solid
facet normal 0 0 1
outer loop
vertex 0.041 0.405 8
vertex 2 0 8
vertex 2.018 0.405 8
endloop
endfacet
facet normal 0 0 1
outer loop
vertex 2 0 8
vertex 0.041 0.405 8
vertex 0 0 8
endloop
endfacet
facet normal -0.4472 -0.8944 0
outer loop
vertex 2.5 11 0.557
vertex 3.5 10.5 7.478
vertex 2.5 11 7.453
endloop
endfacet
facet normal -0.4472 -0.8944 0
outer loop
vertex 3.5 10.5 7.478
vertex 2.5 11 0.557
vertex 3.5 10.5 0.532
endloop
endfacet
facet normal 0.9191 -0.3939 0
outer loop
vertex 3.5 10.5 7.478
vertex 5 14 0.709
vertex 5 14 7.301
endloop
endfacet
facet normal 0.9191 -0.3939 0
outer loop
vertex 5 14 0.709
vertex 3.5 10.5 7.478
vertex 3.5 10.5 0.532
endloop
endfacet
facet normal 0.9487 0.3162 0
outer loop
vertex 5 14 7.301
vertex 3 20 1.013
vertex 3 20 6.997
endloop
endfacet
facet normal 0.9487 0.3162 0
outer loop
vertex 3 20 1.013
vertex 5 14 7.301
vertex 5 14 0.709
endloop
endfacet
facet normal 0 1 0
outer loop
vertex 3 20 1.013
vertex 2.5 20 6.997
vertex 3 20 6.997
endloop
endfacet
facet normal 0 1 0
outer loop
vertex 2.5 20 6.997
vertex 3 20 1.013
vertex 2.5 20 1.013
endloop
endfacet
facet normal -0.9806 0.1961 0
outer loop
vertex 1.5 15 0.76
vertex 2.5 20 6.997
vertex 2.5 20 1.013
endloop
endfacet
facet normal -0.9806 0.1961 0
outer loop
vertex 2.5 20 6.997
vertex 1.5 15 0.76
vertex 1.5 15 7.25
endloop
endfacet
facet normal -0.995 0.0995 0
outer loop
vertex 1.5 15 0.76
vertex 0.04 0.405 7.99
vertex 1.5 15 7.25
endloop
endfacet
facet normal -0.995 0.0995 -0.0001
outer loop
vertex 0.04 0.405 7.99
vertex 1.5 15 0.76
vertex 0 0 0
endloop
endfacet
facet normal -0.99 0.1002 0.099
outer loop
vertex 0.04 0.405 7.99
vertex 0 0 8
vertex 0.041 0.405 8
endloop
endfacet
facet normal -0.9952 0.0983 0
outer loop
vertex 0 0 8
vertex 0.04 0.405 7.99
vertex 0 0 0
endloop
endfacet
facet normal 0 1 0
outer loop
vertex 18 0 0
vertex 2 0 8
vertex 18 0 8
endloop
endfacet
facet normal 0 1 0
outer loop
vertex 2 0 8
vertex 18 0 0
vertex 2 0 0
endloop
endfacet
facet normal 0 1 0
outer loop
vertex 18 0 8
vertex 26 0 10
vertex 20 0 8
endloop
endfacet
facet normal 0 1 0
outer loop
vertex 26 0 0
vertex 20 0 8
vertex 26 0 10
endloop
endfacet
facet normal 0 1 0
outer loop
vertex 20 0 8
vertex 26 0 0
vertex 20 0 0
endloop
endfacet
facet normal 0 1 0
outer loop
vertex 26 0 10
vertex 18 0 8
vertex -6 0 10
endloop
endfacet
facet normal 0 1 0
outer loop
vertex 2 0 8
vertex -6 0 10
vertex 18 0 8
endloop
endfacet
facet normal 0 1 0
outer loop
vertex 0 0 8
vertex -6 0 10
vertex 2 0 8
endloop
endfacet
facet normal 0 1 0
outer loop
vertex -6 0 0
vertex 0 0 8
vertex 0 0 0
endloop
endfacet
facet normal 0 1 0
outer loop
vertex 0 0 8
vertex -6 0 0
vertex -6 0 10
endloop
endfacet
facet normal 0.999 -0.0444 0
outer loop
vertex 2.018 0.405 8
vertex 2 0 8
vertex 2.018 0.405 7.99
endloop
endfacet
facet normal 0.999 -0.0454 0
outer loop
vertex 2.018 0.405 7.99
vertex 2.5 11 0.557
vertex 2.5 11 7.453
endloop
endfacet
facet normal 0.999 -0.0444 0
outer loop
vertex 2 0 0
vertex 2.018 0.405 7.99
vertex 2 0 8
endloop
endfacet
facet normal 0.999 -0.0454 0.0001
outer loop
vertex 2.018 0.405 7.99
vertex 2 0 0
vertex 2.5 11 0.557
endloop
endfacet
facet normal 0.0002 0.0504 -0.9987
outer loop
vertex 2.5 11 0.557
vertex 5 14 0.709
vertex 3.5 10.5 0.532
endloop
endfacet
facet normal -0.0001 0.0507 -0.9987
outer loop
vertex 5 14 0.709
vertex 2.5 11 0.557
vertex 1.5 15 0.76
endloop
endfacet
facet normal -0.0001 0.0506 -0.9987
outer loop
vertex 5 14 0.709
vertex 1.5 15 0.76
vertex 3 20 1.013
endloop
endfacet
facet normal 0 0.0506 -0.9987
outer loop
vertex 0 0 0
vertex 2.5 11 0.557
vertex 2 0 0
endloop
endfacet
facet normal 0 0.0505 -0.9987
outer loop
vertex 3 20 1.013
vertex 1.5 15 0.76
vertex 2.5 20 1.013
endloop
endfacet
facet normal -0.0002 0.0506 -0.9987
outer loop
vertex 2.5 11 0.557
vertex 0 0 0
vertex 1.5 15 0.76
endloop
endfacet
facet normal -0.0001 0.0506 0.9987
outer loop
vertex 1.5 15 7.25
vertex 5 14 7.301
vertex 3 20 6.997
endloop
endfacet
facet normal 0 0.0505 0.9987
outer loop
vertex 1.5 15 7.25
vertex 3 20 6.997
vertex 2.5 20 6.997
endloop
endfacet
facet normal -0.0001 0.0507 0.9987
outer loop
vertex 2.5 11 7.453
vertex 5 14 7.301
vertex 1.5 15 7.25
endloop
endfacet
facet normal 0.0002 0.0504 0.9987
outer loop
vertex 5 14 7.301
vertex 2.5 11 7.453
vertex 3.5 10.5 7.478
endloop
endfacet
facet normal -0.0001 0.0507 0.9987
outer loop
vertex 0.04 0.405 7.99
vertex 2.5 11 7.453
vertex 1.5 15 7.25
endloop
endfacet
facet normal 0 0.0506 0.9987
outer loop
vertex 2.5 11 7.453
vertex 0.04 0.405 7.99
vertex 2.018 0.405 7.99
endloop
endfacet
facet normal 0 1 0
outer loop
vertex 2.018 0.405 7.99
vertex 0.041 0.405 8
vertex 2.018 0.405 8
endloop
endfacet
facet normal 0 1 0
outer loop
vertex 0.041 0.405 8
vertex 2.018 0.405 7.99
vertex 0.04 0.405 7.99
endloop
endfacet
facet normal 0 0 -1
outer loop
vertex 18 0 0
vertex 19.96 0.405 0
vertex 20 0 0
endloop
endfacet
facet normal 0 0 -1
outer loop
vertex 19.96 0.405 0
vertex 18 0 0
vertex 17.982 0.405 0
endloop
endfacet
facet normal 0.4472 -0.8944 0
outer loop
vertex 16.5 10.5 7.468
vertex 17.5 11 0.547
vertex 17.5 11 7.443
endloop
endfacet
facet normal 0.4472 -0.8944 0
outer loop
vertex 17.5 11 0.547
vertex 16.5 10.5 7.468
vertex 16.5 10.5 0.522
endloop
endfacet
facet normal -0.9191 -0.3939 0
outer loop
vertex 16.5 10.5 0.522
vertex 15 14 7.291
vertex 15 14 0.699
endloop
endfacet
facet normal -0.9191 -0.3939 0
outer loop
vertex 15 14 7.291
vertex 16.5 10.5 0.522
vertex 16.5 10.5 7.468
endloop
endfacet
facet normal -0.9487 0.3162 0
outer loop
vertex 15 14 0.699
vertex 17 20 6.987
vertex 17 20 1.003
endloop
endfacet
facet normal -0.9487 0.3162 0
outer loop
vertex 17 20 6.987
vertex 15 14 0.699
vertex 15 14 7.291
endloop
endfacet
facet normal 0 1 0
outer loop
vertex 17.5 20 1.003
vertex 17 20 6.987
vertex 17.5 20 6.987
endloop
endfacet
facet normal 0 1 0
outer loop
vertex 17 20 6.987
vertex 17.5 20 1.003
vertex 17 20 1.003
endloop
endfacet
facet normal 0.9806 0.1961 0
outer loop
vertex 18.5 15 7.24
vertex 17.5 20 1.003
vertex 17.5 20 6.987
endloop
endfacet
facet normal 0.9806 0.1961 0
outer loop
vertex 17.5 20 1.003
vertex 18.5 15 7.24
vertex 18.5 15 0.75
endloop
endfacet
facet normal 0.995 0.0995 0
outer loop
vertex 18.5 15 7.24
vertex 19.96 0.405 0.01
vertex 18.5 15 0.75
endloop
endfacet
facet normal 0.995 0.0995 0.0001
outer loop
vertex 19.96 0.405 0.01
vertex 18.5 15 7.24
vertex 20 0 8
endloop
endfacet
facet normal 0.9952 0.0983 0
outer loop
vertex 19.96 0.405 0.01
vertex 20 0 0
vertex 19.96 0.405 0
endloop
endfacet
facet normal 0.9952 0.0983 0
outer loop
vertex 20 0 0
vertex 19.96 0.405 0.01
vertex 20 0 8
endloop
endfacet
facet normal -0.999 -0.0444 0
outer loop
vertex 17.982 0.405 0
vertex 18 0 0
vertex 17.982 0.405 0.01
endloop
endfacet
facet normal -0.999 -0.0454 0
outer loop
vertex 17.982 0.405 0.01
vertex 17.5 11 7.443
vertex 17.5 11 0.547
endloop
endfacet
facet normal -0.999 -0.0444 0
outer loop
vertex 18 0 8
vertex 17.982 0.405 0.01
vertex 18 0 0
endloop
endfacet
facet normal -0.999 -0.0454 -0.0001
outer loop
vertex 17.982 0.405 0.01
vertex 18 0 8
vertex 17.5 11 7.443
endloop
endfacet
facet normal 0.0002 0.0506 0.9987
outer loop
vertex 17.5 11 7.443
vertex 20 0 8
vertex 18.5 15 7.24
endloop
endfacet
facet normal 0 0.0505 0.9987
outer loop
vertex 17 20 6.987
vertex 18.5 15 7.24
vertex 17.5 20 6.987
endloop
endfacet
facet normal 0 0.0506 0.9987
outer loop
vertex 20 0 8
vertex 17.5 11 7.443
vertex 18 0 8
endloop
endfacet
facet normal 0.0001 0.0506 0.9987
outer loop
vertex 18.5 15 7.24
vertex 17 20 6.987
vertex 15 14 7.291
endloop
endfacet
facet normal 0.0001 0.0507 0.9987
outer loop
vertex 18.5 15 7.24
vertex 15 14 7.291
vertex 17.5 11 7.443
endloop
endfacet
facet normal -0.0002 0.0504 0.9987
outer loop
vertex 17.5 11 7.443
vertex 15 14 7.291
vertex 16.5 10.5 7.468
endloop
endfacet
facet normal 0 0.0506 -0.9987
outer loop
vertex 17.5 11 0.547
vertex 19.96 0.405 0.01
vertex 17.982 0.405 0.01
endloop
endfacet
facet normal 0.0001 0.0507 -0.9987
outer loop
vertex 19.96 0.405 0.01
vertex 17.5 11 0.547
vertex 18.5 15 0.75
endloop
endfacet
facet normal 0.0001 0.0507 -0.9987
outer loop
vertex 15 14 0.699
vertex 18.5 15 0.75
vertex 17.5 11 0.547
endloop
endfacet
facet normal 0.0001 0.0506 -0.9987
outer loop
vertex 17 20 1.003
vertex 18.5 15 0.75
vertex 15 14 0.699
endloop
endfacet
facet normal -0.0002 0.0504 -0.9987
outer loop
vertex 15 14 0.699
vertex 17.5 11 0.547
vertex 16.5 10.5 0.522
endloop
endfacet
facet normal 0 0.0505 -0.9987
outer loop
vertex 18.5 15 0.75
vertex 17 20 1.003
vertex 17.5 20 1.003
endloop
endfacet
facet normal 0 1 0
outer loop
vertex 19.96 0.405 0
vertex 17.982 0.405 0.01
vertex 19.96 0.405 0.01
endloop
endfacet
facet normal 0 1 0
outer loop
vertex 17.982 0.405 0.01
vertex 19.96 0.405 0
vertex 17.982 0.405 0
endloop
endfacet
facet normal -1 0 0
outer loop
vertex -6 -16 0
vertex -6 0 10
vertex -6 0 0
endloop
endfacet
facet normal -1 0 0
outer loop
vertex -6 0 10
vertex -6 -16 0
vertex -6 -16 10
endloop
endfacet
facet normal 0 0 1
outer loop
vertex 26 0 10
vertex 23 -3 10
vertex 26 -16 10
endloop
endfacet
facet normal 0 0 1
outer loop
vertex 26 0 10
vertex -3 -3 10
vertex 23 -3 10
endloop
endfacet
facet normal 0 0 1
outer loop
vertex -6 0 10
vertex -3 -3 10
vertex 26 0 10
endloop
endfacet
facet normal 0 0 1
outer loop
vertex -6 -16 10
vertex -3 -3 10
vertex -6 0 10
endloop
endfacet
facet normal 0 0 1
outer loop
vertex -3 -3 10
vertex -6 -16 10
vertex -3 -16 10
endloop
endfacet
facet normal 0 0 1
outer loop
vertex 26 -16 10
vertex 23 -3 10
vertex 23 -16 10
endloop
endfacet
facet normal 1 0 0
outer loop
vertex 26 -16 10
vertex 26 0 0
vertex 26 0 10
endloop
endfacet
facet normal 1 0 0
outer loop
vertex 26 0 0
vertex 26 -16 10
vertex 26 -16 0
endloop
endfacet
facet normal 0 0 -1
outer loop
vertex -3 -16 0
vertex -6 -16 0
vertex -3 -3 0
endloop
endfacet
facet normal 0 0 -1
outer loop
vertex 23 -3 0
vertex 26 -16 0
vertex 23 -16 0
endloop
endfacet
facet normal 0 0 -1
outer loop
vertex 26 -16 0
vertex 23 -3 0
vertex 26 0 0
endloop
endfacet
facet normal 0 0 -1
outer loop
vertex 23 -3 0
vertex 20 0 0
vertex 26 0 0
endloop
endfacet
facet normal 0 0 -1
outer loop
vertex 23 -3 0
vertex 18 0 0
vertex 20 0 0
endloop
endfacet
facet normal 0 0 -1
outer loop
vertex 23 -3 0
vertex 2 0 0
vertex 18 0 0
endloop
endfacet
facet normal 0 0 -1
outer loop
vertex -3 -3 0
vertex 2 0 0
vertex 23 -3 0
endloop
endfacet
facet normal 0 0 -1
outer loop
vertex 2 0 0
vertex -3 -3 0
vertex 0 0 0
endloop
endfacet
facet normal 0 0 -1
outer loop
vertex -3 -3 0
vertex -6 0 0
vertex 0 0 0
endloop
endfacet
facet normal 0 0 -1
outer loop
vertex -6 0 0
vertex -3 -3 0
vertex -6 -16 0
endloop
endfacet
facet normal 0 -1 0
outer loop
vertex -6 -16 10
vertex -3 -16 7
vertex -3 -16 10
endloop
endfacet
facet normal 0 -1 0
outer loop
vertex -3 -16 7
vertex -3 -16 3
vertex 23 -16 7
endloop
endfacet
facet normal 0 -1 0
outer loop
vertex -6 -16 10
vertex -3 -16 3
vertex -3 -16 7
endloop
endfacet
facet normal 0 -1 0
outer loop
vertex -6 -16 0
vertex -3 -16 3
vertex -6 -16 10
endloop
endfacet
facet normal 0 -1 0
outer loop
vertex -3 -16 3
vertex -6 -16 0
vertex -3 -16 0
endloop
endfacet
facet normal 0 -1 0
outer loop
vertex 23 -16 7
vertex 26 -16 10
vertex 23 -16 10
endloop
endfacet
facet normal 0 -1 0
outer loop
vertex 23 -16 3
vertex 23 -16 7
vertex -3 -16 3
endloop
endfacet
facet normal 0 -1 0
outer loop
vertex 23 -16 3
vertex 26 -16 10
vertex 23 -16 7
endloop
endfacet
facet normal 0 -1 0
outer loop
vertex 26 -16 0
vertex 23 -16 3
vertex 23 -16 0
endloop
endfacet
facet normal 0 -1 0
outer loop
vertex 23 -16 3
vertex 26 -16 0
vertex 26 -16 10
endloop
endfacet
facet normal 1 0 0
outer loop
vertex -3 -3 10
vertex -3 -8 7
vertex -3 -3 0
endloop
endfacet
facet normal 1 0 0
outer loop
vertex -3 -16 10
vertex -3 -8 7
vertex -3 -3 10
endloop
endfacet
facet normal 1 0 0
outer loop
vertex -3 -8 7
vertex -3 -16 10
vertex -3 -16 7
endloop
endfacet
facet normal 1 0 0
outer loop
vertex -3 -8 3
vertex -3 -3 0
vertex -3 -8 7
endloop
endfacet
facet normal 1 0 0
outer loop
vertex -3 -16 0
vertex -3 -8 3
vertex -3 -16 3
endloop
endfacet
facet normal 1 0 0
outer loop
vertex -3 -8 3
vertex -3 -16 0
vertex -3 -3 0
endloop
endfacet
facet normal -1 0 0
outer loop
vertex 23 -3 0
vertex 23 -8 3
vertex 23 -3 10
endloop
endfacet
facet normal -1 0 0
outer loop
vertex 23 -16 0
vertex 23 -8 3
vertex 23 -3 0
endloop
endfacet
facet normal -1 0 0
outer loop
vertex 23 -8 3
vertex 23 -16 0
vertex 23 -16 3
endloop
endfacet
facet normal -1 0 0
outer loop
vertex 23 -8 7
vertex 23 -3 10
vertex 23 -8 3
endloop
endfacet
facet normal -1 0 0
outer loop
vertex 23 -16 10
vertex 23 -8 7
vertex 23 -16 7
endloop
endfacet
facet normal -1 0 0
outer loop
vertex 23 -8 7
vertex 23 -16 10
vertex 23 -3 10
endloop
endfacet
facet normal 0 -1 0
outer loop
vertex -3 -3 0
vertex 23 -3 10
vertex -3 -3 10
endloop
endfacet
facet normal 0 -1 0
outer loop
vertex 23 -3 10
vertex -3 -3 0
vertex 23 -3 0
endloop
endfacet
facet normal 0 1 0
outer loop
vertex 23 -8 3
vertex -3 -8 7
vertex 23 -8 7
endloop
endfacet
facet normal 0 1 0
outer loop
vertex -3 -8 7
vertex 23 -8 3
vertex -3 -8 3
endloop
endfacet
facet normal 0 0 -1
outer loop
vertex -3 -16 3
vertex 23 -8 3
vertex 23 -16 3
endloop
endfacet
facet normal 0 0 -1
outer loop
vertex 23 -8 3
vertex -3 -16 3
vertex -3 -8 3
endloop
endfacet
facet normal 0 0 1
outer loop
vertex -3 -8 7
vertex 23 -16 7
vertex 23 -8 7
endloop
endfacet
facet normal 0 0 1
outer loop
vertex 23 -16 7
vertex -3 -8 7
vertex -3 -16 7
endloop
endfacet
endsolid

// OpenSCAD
difference() {
	difference() {
		difference() {
			union() {
				union() {
					difference() {
						difference() {
							linear_extrude(height = 8) {
								polygon(paths = [[0, 1, 2, 3, 4, 5, 6, 7]], points = [[0, 0], [1.5000000000, 15], [2.5000000000, 20], [3, 20], [5.0000000000, 14], [3.5000000000, 10.5000000000], [2.5000000000, 11], [2, 0]]);
							}
							rotate(a = [2.9000000000, 0, 0]) {
								translate(v = [0, 0, -21]) {
									cube(size = 21);
								}
							}
						}
						rotate(a = [-2.9000000000, 0, 0]) {
							translate(v = [0, 0, 8]) {
								cube(size = 21);
							}
						}
					}
					translate(v = [20, 0, 0]) {
						translate(v = [0, 0, 8]) {
							rotate(a = [0, 180, 0]) {
								difference() {
									difference() {
										linear_extrude(height = 8) {
											polygon(paths = [[0, 1, 2, 3, 4, 5, 6, 7]], points = [[0, 0], [1.5000000000, 15], [2.5000000000, 20], [3, 20], [5.0000000000, 14], [3.5000000000, 10.5000000000], [2.5000000000, 11], [2, 0]]);
										}
										rotate(a = [2.9000000000, 0, 0]) {
											translate(v = [0, 0, -21]) {
												cube(size = 21);
											}
										}
									}
									rotate(a = [-2.9000000000, 0, 0]) {
										translate(v = [0, 0, 8]) {
											cube(size = 21);
										}
									}
								}
							}
						}
					}
				}
				translate(v = [-6, 0, 0]) {
					translate(v = [0, -16, 0]) {
						cube(size = [32, 16, 10]);
					}
				}
			}
			translate(v = [-3, 0, 0]) {
				translate(v = [0, -8, 0]) {
					cube(size = [26, 5, 11]);
				}
			}
		}
		translate(v = [-3, 0, 0]) {
			translate(v = [0, -16, 0]) {
				cube(size = [26, 8, 3]);
			}
		}
	}
	translate(v = [0, 0, 7]) {
		translate(v = [-3, 0, 0]) {
			translate(v = [0, -16, 0]) {
				cube(size = [26, 8, 3]);
			}
		}
	}
}
/***********************************************
*********      SolidPython code:      **********
************************************************
 

from solid import *
from solid.utils import *

def hook():
    shape = polygon(points=[
      [0, 0],
      [1.5, 15],
      [2.5, 20],
      [3, 20],
      [5.0, 14],
      [3.5, 10.5],
      [2.5, 11],
      [2, 0]
    ]) 
    h = linear_extrude(height=8)(shape)
    bottom_camber = rotate(a=[2.9,0,0])(down(21)(cube(21)))
    top_camber = rotate(a=[-2.9,0,0])(up(8)(cube(21)))
    return h - bottom_camber - top_camber

left_hook = hook()

right_hook = right(20)(up(8)(
    rotate(a=[0,180,0])(hook())
))

hook_back = left(6)(back(16)(
    cube(size=[32, 16, 10])
))
back_hole = left(3)(back(8)(
    cube(size=[26, 5, 11])
))
top_back_hole = left(3)(back(16)(
    cube(size=[26, 8, 3])
))
bot_back_hole = up(7)(left(3)(back(16)(
    cube(size=[26, 8, 3])
)))

final = (left_hook + right_hook + 
         hook_back - back_hole -
         top_back_hole - bot_back_hole)

def foo(thing):
    print(thing)

@foo
def hi():
    print('hi')

scad_render_to_file(final, __file__.replace('.py', '.scad'))
 
 
************************************************/
